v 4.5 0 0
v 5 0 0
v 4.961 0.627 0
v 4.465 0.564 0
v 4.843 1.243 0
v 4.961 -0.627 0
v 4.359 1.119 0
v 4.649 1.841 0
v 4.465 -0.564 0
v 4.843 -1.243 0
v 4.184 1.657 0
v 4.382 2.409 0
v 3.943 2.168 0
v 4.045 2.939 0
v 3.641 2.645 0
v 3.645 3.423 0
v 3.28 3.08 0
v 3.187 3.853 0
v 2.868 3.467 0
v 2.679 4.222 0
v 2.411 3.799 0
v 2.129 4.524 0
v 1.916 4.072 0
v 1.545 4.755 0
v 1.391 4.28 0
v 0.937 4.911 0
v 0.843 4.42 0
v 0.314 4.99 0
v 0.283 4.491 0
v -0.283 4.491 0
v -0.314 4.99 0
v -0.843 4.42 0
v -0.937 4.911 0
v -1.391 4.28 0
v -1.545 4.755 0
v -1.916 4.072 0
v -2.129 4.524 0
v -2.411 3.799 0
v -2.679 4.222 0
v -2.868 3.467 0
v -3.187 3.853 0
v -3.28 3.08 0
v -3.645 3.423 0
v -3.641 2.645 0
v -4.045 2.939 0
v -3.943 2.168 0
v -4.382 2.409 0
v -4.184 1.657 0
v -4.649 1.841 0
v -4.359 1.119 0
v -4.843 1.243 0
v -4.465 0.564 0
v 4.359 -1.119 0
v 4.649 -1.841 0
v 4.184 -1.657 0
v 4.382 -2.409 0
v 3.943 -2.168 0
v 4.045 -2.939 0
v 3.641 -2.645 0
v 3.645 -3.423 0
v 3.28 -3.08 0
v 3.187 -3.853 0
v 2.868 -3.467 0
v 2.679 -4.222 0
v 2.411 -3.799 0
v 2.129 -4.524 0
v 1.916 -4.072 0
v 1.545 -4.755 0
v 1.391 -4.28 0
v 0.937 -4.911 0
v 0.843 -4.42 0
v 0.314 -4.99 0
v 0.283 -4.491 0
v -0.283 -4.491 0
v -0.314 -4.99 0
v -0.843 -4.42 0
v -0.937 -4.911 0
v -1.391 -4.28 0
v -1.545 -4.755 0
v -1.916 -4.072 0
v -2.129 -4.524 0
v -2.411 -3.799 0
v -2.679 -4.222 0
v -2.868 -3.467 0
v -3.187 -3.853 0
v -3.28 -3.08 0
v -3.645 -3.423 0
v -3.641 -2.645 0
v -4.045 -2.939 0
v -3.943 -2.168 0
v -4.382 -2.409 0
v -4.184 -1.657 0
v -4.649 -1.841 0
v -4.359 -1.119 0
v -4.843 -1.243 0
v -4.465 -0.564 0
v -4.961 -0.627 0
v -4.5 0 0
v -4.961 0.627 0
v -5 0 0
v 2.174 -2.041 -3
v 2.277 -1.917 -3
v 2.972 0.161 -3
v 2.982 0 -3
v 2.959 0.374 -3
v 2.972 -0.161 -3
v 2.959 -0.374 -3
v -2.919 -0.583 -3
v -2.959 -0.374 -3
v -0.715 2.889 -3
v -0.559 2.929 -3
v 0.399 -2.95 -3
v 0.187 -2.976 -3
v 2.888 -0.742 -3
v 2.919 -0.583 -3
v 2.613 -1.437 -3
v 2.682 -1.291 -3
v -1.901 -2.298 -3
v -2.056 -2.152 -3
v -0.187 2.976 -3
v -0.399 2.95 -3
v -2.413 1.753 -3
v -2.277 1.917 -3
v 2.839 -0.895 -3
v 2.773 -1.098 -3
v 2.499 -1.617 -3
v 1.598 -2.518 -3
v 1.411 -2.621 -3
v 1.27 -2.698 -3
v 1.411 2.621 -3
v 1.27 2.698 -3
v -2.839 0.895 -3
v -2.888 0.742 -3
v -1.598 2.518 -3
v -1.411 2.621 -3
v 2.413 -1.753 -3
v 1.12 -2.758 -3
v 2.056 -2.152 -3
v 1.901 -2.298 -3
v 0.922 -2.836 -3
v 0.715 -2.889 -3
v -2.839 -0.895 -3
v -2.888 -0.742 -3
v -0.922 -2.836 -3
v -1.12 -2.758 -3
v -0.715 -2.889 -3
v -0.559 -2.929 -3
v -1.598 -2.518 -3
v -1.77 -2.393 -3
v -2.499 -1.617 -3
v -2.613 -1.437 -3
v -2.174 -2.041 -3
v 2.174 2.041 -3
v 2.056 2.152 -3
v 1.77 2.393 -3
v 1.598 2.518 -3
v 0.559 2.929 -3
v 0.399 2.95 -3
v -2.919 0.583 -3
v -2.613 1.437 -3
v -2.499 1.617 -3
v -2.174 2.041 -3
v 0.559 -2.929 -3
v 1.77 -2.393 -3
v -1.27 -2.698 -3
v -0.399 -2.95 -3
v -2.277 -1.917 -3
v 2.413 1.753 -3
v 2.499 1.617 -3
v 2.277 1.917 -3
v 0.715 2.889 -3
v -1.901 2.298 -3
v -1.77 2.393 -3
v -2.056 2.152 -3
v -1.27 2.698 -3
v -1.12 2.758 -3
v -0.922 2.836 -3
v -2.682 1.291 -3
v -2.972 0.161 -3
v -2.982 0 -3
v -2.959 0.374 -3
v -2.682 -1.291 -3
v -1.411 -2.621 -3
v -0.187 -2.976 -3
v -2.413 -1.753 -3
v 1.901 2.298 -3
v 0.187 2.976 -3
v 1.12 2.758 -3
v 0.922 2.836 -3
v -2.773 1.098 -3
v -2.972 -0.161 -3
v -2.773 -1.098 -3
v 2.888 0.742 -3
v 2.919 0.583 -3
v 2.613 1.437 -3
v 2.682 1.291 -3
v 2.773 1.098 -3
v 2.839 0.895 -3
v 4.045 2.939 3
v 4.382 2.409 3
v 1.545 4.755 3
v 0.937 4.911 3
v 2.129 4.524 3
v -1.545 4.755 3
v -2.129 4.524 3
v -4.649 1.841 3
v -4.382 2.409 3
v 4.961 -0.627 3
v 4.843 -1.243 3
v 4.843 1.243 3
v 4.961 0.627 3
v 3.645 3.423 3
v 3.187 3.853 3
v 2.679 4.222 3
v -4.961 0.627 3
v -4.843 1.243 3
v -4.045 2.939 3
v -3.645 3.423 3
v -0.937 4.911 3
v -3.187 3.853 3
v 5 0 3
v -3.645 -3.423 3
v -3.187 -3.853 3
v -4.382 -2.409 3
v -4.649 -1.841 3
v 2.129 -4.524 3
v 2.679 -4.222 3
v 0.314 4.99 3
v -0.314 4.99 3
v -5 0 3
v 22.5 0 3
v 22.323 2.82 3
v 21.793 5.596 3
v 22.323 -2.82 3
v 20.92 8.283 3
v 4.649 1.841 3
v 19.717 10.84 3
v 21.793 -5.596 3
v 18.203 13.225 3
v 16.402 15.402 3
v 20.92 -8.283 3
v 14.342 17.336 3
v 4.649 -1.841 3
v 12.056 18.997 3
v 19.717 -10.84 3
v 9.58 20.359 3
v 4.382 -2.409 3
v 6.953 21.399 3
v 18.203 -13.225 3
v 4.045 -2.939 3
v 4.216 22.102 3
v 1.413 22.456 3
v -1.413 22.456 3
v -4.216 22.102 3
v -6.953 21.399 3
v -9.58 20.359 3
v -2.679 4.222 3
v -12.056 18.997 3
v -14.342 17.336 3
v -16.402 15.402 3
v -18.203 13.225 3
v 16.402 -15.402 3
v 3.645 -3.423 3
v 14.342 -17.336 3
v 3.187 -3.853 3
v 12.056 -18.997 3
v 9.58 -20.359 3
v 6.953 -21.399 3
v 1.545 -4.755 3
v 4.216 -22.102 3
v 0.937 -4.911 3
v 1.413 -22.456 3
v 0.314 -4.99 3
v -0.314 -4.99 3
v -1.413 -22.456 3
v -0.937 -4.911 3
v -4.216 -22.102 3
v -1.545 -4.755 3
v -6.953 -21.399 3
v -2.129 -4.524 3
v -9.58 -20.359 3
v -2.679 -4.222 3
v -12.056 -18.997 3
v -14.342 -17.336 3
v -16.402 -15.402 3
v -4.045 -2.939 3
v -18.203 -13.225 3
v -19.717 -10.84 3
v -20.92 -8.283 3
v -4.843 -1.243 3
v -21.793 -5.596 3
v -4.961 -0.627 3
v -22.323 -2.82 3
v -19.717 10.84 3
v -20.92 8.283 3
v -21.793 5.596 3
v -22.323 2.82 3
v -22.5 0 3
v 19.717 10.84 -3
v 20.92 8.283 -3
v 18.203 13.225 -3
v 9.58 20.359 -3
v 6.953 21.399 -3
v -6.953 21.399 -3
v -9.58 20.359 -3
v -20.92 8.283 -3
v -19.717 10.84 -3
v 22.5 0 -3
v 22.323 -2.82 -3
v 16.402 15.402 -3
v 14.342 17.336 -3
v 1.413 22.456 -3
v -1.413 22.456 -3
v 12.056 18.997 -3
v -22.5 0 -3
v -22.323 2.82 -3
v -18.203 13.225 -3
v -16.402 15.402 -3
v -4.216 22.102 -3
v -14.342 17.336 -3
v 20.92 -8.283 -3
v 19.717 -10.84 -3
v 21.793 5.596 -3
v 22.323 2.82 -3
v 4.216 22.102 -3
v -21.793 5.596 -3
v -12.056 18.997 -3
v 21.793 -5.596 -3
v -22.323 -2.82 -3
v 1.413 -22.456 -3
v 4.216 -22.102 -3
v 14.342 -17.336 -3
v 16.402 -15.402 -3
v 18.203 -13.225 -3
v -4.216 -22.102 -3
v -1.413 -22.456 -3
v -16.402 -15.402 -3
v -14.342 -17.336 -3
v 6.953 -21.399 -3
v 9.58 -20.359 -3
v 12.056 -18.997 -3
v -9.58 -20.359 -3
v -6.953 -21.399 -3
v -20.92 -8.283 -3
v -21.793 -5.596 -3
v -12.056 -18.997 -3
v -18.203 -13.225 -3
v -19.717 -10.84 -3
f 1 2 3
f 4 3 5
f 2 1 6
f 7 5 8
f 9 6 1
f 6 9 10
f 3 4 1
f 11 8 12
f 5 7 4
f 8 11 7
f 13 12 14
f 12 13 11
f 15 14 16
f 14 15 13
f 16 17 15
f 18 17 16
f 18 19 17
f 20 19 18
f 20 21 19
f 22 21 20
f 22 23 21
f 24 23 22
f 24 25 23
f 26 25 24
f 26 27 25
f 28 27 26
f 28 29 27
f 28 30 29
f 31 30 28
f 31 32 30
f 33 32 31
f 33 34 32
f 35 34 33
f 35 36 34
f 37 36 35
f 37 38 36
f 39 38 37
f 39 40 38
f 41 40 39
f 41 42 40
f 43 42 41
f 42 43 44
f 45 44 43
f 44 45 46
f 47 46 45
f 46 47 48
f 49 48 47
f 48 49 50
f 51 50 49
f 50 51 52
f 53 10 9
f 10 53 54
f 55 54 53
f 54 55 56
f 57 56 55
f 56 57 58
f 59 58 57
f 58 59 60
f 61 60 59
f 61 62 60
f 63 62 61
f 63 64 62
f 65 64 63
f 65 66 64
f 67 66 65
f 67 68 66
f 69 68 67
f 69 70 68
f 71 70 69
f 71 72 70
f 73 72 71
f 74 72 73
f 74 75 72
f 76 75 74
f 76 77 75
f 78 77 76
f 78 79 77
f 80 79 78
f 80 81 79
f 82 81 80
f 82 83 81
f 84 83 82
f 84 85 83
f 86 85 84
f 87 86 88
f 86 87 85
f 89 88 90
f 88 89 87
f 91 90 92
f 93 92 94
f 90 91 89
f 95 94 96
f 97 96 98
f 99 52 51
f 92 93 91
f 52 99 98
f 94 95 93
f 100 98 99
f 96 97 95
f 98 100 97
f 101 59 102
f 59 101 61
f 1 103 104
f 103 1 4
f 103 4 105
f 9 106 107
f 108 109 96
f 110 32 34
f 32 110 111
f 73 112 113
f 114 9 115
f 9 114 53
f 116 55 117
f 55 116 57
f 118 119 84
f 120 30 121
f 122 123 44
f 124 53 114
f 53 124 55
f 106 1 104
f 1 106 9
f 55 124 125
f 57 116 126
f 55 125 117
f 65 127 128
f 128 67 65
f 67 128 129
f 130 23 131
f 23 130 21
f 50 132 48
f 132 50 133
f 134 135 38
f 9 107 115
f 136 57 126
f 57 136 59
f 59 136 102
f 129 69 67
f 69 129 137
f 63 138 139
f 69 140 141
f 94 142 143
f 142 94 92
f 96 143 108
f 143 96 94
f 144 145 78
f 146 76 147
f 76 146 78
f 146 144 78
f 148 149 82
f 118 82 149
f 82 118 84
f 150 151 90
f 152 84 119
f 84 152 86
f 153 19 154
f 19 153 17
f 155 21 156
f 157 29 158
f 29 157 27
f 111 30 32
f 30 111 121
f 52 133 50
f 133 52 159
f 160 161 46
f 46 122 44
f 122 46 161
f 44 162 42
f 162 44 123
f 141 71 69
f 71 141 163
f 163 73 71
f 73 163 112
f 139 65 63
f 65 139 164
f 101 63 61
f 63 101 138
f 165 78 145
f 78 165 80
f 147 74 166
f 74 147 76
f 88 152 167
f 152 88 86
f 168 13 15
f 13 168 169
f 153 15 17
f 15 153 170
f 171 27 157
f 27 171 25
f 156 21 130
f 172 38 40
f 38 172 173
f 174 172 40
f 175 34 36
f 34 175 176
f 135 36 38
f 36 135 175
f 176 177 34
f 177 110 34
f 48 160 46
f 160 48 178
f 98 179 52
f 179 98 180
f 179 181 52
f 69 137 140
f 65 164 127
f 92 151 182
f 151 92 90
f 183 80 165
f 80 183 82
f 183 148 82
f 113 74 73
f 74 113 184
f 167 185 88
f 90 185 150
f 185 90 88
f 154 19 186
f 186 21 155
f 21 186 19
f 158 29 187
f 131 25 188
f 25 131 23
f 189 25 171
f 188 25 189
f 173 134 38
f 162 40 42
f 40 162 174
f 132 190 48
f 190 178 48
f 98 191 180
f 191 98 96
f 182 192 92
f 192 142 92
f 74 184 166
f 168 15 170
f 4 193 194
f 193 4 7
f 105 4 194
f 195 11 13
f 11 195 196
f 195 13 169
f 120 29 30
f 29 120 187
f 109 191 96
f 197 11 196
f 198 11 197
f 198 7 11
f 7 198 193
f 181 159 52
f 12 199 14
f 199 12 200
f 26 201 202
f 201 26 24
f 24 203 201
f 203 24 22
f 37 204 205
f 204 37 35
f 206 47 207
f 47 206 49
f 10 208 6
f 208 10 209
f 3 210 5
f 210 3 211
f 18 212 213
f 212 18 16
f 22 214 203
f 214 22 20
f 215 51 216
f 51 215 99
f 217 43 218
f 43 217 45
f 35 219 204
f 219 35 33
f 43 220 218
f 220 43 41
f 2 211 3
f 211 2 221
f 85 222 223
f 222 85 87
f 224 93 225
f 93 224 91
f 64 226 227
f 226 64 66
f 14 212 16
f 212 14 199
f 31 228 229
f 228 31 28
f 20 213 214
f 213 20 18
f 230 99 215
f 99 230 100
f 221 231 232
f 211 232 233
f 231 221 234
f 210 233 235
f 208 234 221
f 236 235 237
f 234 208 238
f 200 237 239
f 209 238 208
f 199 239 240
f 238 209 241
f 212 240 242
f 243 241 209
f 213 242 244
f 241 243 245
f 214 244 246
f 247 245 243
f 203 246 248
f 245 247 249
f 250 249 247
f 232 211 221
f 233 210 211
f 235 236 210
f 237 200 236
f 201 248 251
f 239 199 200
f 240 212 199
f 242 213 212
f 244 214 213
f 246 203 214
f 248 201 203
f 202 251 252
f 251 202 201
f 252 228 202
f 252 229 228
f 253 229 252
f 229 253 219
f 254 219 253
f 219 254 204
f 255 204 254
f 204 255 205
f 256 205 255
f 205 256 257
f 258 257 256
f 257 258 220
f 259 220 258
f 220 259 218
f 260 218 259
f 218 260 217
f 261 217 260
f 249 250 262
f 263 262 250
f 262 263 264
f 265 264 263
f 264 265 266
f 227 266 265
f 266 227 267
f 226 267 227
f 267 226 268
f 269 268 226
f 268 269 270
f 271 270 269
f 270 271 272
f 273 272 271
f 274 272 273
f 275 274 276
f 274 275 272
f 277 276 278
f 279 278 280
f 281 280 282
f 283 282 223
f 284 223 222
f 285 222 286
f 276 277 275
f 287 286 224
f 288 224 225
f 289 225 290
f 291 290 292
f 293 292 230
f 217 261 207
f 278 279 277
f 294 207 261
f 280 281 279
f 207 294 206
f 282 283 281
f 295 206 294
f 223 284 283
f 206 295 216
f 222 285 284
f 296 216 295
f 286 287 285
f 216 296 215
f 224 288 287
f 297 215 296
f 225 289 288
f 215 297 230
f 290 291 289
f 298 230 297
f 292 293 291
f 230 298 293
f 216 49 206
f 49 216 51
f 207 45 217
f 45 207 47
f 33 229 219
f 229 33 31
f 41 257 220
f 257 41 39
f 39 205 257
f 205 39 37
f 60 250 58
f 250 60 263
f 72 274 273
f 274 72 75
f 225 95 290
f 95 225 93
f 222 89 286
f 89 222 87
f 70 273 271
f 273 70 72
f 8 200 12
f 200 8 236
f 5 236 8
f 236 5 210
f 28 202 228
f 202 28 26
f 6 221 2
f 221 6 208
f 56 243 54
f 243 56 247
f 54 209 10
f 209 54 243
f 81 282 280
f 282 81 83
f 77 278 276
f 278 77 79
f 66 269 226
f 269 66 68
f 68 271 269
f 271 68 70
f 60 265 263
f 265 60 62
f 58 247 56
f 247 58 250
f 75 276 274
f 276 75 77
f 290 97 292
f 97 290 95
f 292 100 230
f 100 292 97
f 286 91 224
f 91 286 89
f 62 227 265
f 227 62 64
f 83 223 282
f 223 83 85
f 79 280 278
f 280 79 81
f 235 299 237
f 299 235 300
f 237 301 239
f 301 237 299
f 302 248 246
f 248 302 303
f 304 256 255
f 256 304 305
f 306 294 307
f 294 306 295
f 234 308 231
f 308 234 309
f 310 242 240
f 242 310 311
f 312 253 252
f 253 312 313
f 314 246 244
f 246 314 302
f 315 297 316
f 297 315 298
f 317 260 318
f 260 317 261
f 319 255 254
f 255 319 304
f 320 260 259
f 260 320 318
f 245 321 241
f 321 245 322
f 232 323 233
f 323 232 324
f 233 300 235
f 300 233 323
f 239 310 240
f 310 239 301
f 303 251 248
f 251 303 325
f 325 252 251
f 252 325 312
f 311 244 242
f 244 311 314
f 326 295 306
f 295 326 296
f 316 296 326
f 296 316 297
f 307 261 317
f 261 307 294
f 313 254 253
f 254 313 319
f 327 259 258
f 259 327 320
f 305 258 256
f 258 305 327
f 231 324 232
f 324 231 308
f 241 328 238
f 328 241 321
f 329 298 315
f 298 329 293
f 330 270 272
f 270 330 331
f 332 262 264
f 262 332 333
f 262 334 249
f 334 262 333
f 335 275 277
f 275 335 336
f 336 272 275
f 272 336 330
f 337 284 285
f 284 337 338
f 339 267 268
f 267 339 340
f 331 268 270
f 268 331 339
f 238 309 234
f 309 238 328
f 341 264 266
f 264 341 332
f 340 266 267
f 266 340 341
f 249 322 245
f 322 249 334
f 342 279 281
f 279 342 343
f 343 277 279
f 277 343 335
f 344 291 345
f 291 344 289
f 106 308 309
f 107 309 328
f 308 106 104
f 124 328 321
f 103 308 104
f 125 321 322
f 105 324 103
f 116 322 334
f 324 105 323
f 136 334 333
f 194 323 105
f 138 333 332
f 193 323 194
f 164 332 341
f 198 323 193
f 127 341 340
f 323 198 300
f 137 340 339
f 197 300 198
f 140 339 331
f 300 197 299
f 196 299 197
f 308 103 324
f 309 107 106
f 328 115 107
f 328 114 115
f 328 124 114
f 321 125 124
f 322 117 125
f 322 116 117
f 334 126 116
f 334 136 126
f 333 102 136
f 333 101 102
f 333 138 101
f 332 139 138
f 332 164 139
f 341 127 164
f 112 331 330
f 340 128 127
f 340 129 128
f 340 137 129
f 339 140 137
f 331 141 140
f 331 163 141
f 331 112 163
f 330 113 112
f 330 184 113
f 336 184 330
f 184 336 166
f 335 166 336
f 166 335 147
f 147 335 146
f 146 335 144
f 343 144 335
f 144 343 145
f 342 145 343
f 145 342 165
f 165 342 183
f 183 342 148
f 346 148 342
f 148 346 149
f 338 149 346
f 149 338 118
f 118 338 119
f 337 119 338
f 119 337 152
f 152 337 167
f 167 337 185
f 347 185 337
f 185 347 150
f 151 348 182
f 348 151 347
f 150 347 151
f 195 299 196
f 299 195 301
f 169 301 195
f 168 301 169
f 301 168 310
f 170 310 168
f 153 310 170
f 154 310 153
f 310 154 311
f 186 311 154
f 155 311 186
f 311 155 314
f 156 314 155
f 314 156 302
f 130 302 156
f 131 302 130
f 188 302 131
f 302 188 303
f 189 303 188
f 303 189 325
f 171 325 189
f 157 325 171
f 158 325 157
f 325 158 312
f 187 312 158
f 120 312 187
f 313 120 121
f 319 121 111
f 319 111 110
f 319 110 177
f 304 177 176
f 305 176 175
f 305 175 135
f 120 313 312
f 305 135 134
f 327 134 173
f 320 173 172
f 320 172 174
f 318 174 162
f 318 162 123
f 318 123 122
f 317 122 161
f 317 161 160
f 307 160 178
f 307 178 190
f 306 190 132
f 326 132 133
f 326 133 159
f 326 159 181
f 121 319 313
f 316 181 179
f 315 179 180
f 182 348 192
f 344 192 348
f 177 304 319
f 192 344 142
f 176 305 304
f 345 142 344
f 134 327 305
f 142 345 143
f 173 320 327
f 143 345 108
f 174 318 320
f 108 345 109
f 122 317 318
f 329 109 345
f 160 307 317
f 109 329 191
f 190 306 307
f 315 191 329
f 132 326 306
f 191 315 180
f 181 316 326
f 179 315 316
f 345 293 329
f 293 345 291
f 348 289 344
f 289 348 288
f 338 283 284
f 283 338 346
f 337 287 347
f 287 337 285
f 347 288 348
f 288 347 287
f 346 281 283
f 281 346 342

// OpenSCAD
$fn = 50;

difference() {
	union() {
		translate(v = [0, 0, -3.0]) {
			cylinder(h = 6, r = 22.5);
		}
	}
	union() {
		translate(v = [0, 0, 0]) {
			rotate(a = [0, 0, 0]) {
				difference() {
					union() {
						translate(v = [0, 0, -6.0]) {
							cylinder(h = 6, r = 2.25);
						}
						translate(v = [0, 0, -4.2]) {
							cylinder(h = 4.2, r1 = 2.375, r2 = 4.5);
						}
						translate(v = [0, 0, -6.0]) {
							cylinder(h = 6, r = 2.375);
						}
						translate(v = [0, 0, -6.0]) {
							cylinder(h = 6, r = 2.25);
						}
					}
					union();
				}
			}
		}
		#cylinder(h = 3, r = 5.0);
	}
}
